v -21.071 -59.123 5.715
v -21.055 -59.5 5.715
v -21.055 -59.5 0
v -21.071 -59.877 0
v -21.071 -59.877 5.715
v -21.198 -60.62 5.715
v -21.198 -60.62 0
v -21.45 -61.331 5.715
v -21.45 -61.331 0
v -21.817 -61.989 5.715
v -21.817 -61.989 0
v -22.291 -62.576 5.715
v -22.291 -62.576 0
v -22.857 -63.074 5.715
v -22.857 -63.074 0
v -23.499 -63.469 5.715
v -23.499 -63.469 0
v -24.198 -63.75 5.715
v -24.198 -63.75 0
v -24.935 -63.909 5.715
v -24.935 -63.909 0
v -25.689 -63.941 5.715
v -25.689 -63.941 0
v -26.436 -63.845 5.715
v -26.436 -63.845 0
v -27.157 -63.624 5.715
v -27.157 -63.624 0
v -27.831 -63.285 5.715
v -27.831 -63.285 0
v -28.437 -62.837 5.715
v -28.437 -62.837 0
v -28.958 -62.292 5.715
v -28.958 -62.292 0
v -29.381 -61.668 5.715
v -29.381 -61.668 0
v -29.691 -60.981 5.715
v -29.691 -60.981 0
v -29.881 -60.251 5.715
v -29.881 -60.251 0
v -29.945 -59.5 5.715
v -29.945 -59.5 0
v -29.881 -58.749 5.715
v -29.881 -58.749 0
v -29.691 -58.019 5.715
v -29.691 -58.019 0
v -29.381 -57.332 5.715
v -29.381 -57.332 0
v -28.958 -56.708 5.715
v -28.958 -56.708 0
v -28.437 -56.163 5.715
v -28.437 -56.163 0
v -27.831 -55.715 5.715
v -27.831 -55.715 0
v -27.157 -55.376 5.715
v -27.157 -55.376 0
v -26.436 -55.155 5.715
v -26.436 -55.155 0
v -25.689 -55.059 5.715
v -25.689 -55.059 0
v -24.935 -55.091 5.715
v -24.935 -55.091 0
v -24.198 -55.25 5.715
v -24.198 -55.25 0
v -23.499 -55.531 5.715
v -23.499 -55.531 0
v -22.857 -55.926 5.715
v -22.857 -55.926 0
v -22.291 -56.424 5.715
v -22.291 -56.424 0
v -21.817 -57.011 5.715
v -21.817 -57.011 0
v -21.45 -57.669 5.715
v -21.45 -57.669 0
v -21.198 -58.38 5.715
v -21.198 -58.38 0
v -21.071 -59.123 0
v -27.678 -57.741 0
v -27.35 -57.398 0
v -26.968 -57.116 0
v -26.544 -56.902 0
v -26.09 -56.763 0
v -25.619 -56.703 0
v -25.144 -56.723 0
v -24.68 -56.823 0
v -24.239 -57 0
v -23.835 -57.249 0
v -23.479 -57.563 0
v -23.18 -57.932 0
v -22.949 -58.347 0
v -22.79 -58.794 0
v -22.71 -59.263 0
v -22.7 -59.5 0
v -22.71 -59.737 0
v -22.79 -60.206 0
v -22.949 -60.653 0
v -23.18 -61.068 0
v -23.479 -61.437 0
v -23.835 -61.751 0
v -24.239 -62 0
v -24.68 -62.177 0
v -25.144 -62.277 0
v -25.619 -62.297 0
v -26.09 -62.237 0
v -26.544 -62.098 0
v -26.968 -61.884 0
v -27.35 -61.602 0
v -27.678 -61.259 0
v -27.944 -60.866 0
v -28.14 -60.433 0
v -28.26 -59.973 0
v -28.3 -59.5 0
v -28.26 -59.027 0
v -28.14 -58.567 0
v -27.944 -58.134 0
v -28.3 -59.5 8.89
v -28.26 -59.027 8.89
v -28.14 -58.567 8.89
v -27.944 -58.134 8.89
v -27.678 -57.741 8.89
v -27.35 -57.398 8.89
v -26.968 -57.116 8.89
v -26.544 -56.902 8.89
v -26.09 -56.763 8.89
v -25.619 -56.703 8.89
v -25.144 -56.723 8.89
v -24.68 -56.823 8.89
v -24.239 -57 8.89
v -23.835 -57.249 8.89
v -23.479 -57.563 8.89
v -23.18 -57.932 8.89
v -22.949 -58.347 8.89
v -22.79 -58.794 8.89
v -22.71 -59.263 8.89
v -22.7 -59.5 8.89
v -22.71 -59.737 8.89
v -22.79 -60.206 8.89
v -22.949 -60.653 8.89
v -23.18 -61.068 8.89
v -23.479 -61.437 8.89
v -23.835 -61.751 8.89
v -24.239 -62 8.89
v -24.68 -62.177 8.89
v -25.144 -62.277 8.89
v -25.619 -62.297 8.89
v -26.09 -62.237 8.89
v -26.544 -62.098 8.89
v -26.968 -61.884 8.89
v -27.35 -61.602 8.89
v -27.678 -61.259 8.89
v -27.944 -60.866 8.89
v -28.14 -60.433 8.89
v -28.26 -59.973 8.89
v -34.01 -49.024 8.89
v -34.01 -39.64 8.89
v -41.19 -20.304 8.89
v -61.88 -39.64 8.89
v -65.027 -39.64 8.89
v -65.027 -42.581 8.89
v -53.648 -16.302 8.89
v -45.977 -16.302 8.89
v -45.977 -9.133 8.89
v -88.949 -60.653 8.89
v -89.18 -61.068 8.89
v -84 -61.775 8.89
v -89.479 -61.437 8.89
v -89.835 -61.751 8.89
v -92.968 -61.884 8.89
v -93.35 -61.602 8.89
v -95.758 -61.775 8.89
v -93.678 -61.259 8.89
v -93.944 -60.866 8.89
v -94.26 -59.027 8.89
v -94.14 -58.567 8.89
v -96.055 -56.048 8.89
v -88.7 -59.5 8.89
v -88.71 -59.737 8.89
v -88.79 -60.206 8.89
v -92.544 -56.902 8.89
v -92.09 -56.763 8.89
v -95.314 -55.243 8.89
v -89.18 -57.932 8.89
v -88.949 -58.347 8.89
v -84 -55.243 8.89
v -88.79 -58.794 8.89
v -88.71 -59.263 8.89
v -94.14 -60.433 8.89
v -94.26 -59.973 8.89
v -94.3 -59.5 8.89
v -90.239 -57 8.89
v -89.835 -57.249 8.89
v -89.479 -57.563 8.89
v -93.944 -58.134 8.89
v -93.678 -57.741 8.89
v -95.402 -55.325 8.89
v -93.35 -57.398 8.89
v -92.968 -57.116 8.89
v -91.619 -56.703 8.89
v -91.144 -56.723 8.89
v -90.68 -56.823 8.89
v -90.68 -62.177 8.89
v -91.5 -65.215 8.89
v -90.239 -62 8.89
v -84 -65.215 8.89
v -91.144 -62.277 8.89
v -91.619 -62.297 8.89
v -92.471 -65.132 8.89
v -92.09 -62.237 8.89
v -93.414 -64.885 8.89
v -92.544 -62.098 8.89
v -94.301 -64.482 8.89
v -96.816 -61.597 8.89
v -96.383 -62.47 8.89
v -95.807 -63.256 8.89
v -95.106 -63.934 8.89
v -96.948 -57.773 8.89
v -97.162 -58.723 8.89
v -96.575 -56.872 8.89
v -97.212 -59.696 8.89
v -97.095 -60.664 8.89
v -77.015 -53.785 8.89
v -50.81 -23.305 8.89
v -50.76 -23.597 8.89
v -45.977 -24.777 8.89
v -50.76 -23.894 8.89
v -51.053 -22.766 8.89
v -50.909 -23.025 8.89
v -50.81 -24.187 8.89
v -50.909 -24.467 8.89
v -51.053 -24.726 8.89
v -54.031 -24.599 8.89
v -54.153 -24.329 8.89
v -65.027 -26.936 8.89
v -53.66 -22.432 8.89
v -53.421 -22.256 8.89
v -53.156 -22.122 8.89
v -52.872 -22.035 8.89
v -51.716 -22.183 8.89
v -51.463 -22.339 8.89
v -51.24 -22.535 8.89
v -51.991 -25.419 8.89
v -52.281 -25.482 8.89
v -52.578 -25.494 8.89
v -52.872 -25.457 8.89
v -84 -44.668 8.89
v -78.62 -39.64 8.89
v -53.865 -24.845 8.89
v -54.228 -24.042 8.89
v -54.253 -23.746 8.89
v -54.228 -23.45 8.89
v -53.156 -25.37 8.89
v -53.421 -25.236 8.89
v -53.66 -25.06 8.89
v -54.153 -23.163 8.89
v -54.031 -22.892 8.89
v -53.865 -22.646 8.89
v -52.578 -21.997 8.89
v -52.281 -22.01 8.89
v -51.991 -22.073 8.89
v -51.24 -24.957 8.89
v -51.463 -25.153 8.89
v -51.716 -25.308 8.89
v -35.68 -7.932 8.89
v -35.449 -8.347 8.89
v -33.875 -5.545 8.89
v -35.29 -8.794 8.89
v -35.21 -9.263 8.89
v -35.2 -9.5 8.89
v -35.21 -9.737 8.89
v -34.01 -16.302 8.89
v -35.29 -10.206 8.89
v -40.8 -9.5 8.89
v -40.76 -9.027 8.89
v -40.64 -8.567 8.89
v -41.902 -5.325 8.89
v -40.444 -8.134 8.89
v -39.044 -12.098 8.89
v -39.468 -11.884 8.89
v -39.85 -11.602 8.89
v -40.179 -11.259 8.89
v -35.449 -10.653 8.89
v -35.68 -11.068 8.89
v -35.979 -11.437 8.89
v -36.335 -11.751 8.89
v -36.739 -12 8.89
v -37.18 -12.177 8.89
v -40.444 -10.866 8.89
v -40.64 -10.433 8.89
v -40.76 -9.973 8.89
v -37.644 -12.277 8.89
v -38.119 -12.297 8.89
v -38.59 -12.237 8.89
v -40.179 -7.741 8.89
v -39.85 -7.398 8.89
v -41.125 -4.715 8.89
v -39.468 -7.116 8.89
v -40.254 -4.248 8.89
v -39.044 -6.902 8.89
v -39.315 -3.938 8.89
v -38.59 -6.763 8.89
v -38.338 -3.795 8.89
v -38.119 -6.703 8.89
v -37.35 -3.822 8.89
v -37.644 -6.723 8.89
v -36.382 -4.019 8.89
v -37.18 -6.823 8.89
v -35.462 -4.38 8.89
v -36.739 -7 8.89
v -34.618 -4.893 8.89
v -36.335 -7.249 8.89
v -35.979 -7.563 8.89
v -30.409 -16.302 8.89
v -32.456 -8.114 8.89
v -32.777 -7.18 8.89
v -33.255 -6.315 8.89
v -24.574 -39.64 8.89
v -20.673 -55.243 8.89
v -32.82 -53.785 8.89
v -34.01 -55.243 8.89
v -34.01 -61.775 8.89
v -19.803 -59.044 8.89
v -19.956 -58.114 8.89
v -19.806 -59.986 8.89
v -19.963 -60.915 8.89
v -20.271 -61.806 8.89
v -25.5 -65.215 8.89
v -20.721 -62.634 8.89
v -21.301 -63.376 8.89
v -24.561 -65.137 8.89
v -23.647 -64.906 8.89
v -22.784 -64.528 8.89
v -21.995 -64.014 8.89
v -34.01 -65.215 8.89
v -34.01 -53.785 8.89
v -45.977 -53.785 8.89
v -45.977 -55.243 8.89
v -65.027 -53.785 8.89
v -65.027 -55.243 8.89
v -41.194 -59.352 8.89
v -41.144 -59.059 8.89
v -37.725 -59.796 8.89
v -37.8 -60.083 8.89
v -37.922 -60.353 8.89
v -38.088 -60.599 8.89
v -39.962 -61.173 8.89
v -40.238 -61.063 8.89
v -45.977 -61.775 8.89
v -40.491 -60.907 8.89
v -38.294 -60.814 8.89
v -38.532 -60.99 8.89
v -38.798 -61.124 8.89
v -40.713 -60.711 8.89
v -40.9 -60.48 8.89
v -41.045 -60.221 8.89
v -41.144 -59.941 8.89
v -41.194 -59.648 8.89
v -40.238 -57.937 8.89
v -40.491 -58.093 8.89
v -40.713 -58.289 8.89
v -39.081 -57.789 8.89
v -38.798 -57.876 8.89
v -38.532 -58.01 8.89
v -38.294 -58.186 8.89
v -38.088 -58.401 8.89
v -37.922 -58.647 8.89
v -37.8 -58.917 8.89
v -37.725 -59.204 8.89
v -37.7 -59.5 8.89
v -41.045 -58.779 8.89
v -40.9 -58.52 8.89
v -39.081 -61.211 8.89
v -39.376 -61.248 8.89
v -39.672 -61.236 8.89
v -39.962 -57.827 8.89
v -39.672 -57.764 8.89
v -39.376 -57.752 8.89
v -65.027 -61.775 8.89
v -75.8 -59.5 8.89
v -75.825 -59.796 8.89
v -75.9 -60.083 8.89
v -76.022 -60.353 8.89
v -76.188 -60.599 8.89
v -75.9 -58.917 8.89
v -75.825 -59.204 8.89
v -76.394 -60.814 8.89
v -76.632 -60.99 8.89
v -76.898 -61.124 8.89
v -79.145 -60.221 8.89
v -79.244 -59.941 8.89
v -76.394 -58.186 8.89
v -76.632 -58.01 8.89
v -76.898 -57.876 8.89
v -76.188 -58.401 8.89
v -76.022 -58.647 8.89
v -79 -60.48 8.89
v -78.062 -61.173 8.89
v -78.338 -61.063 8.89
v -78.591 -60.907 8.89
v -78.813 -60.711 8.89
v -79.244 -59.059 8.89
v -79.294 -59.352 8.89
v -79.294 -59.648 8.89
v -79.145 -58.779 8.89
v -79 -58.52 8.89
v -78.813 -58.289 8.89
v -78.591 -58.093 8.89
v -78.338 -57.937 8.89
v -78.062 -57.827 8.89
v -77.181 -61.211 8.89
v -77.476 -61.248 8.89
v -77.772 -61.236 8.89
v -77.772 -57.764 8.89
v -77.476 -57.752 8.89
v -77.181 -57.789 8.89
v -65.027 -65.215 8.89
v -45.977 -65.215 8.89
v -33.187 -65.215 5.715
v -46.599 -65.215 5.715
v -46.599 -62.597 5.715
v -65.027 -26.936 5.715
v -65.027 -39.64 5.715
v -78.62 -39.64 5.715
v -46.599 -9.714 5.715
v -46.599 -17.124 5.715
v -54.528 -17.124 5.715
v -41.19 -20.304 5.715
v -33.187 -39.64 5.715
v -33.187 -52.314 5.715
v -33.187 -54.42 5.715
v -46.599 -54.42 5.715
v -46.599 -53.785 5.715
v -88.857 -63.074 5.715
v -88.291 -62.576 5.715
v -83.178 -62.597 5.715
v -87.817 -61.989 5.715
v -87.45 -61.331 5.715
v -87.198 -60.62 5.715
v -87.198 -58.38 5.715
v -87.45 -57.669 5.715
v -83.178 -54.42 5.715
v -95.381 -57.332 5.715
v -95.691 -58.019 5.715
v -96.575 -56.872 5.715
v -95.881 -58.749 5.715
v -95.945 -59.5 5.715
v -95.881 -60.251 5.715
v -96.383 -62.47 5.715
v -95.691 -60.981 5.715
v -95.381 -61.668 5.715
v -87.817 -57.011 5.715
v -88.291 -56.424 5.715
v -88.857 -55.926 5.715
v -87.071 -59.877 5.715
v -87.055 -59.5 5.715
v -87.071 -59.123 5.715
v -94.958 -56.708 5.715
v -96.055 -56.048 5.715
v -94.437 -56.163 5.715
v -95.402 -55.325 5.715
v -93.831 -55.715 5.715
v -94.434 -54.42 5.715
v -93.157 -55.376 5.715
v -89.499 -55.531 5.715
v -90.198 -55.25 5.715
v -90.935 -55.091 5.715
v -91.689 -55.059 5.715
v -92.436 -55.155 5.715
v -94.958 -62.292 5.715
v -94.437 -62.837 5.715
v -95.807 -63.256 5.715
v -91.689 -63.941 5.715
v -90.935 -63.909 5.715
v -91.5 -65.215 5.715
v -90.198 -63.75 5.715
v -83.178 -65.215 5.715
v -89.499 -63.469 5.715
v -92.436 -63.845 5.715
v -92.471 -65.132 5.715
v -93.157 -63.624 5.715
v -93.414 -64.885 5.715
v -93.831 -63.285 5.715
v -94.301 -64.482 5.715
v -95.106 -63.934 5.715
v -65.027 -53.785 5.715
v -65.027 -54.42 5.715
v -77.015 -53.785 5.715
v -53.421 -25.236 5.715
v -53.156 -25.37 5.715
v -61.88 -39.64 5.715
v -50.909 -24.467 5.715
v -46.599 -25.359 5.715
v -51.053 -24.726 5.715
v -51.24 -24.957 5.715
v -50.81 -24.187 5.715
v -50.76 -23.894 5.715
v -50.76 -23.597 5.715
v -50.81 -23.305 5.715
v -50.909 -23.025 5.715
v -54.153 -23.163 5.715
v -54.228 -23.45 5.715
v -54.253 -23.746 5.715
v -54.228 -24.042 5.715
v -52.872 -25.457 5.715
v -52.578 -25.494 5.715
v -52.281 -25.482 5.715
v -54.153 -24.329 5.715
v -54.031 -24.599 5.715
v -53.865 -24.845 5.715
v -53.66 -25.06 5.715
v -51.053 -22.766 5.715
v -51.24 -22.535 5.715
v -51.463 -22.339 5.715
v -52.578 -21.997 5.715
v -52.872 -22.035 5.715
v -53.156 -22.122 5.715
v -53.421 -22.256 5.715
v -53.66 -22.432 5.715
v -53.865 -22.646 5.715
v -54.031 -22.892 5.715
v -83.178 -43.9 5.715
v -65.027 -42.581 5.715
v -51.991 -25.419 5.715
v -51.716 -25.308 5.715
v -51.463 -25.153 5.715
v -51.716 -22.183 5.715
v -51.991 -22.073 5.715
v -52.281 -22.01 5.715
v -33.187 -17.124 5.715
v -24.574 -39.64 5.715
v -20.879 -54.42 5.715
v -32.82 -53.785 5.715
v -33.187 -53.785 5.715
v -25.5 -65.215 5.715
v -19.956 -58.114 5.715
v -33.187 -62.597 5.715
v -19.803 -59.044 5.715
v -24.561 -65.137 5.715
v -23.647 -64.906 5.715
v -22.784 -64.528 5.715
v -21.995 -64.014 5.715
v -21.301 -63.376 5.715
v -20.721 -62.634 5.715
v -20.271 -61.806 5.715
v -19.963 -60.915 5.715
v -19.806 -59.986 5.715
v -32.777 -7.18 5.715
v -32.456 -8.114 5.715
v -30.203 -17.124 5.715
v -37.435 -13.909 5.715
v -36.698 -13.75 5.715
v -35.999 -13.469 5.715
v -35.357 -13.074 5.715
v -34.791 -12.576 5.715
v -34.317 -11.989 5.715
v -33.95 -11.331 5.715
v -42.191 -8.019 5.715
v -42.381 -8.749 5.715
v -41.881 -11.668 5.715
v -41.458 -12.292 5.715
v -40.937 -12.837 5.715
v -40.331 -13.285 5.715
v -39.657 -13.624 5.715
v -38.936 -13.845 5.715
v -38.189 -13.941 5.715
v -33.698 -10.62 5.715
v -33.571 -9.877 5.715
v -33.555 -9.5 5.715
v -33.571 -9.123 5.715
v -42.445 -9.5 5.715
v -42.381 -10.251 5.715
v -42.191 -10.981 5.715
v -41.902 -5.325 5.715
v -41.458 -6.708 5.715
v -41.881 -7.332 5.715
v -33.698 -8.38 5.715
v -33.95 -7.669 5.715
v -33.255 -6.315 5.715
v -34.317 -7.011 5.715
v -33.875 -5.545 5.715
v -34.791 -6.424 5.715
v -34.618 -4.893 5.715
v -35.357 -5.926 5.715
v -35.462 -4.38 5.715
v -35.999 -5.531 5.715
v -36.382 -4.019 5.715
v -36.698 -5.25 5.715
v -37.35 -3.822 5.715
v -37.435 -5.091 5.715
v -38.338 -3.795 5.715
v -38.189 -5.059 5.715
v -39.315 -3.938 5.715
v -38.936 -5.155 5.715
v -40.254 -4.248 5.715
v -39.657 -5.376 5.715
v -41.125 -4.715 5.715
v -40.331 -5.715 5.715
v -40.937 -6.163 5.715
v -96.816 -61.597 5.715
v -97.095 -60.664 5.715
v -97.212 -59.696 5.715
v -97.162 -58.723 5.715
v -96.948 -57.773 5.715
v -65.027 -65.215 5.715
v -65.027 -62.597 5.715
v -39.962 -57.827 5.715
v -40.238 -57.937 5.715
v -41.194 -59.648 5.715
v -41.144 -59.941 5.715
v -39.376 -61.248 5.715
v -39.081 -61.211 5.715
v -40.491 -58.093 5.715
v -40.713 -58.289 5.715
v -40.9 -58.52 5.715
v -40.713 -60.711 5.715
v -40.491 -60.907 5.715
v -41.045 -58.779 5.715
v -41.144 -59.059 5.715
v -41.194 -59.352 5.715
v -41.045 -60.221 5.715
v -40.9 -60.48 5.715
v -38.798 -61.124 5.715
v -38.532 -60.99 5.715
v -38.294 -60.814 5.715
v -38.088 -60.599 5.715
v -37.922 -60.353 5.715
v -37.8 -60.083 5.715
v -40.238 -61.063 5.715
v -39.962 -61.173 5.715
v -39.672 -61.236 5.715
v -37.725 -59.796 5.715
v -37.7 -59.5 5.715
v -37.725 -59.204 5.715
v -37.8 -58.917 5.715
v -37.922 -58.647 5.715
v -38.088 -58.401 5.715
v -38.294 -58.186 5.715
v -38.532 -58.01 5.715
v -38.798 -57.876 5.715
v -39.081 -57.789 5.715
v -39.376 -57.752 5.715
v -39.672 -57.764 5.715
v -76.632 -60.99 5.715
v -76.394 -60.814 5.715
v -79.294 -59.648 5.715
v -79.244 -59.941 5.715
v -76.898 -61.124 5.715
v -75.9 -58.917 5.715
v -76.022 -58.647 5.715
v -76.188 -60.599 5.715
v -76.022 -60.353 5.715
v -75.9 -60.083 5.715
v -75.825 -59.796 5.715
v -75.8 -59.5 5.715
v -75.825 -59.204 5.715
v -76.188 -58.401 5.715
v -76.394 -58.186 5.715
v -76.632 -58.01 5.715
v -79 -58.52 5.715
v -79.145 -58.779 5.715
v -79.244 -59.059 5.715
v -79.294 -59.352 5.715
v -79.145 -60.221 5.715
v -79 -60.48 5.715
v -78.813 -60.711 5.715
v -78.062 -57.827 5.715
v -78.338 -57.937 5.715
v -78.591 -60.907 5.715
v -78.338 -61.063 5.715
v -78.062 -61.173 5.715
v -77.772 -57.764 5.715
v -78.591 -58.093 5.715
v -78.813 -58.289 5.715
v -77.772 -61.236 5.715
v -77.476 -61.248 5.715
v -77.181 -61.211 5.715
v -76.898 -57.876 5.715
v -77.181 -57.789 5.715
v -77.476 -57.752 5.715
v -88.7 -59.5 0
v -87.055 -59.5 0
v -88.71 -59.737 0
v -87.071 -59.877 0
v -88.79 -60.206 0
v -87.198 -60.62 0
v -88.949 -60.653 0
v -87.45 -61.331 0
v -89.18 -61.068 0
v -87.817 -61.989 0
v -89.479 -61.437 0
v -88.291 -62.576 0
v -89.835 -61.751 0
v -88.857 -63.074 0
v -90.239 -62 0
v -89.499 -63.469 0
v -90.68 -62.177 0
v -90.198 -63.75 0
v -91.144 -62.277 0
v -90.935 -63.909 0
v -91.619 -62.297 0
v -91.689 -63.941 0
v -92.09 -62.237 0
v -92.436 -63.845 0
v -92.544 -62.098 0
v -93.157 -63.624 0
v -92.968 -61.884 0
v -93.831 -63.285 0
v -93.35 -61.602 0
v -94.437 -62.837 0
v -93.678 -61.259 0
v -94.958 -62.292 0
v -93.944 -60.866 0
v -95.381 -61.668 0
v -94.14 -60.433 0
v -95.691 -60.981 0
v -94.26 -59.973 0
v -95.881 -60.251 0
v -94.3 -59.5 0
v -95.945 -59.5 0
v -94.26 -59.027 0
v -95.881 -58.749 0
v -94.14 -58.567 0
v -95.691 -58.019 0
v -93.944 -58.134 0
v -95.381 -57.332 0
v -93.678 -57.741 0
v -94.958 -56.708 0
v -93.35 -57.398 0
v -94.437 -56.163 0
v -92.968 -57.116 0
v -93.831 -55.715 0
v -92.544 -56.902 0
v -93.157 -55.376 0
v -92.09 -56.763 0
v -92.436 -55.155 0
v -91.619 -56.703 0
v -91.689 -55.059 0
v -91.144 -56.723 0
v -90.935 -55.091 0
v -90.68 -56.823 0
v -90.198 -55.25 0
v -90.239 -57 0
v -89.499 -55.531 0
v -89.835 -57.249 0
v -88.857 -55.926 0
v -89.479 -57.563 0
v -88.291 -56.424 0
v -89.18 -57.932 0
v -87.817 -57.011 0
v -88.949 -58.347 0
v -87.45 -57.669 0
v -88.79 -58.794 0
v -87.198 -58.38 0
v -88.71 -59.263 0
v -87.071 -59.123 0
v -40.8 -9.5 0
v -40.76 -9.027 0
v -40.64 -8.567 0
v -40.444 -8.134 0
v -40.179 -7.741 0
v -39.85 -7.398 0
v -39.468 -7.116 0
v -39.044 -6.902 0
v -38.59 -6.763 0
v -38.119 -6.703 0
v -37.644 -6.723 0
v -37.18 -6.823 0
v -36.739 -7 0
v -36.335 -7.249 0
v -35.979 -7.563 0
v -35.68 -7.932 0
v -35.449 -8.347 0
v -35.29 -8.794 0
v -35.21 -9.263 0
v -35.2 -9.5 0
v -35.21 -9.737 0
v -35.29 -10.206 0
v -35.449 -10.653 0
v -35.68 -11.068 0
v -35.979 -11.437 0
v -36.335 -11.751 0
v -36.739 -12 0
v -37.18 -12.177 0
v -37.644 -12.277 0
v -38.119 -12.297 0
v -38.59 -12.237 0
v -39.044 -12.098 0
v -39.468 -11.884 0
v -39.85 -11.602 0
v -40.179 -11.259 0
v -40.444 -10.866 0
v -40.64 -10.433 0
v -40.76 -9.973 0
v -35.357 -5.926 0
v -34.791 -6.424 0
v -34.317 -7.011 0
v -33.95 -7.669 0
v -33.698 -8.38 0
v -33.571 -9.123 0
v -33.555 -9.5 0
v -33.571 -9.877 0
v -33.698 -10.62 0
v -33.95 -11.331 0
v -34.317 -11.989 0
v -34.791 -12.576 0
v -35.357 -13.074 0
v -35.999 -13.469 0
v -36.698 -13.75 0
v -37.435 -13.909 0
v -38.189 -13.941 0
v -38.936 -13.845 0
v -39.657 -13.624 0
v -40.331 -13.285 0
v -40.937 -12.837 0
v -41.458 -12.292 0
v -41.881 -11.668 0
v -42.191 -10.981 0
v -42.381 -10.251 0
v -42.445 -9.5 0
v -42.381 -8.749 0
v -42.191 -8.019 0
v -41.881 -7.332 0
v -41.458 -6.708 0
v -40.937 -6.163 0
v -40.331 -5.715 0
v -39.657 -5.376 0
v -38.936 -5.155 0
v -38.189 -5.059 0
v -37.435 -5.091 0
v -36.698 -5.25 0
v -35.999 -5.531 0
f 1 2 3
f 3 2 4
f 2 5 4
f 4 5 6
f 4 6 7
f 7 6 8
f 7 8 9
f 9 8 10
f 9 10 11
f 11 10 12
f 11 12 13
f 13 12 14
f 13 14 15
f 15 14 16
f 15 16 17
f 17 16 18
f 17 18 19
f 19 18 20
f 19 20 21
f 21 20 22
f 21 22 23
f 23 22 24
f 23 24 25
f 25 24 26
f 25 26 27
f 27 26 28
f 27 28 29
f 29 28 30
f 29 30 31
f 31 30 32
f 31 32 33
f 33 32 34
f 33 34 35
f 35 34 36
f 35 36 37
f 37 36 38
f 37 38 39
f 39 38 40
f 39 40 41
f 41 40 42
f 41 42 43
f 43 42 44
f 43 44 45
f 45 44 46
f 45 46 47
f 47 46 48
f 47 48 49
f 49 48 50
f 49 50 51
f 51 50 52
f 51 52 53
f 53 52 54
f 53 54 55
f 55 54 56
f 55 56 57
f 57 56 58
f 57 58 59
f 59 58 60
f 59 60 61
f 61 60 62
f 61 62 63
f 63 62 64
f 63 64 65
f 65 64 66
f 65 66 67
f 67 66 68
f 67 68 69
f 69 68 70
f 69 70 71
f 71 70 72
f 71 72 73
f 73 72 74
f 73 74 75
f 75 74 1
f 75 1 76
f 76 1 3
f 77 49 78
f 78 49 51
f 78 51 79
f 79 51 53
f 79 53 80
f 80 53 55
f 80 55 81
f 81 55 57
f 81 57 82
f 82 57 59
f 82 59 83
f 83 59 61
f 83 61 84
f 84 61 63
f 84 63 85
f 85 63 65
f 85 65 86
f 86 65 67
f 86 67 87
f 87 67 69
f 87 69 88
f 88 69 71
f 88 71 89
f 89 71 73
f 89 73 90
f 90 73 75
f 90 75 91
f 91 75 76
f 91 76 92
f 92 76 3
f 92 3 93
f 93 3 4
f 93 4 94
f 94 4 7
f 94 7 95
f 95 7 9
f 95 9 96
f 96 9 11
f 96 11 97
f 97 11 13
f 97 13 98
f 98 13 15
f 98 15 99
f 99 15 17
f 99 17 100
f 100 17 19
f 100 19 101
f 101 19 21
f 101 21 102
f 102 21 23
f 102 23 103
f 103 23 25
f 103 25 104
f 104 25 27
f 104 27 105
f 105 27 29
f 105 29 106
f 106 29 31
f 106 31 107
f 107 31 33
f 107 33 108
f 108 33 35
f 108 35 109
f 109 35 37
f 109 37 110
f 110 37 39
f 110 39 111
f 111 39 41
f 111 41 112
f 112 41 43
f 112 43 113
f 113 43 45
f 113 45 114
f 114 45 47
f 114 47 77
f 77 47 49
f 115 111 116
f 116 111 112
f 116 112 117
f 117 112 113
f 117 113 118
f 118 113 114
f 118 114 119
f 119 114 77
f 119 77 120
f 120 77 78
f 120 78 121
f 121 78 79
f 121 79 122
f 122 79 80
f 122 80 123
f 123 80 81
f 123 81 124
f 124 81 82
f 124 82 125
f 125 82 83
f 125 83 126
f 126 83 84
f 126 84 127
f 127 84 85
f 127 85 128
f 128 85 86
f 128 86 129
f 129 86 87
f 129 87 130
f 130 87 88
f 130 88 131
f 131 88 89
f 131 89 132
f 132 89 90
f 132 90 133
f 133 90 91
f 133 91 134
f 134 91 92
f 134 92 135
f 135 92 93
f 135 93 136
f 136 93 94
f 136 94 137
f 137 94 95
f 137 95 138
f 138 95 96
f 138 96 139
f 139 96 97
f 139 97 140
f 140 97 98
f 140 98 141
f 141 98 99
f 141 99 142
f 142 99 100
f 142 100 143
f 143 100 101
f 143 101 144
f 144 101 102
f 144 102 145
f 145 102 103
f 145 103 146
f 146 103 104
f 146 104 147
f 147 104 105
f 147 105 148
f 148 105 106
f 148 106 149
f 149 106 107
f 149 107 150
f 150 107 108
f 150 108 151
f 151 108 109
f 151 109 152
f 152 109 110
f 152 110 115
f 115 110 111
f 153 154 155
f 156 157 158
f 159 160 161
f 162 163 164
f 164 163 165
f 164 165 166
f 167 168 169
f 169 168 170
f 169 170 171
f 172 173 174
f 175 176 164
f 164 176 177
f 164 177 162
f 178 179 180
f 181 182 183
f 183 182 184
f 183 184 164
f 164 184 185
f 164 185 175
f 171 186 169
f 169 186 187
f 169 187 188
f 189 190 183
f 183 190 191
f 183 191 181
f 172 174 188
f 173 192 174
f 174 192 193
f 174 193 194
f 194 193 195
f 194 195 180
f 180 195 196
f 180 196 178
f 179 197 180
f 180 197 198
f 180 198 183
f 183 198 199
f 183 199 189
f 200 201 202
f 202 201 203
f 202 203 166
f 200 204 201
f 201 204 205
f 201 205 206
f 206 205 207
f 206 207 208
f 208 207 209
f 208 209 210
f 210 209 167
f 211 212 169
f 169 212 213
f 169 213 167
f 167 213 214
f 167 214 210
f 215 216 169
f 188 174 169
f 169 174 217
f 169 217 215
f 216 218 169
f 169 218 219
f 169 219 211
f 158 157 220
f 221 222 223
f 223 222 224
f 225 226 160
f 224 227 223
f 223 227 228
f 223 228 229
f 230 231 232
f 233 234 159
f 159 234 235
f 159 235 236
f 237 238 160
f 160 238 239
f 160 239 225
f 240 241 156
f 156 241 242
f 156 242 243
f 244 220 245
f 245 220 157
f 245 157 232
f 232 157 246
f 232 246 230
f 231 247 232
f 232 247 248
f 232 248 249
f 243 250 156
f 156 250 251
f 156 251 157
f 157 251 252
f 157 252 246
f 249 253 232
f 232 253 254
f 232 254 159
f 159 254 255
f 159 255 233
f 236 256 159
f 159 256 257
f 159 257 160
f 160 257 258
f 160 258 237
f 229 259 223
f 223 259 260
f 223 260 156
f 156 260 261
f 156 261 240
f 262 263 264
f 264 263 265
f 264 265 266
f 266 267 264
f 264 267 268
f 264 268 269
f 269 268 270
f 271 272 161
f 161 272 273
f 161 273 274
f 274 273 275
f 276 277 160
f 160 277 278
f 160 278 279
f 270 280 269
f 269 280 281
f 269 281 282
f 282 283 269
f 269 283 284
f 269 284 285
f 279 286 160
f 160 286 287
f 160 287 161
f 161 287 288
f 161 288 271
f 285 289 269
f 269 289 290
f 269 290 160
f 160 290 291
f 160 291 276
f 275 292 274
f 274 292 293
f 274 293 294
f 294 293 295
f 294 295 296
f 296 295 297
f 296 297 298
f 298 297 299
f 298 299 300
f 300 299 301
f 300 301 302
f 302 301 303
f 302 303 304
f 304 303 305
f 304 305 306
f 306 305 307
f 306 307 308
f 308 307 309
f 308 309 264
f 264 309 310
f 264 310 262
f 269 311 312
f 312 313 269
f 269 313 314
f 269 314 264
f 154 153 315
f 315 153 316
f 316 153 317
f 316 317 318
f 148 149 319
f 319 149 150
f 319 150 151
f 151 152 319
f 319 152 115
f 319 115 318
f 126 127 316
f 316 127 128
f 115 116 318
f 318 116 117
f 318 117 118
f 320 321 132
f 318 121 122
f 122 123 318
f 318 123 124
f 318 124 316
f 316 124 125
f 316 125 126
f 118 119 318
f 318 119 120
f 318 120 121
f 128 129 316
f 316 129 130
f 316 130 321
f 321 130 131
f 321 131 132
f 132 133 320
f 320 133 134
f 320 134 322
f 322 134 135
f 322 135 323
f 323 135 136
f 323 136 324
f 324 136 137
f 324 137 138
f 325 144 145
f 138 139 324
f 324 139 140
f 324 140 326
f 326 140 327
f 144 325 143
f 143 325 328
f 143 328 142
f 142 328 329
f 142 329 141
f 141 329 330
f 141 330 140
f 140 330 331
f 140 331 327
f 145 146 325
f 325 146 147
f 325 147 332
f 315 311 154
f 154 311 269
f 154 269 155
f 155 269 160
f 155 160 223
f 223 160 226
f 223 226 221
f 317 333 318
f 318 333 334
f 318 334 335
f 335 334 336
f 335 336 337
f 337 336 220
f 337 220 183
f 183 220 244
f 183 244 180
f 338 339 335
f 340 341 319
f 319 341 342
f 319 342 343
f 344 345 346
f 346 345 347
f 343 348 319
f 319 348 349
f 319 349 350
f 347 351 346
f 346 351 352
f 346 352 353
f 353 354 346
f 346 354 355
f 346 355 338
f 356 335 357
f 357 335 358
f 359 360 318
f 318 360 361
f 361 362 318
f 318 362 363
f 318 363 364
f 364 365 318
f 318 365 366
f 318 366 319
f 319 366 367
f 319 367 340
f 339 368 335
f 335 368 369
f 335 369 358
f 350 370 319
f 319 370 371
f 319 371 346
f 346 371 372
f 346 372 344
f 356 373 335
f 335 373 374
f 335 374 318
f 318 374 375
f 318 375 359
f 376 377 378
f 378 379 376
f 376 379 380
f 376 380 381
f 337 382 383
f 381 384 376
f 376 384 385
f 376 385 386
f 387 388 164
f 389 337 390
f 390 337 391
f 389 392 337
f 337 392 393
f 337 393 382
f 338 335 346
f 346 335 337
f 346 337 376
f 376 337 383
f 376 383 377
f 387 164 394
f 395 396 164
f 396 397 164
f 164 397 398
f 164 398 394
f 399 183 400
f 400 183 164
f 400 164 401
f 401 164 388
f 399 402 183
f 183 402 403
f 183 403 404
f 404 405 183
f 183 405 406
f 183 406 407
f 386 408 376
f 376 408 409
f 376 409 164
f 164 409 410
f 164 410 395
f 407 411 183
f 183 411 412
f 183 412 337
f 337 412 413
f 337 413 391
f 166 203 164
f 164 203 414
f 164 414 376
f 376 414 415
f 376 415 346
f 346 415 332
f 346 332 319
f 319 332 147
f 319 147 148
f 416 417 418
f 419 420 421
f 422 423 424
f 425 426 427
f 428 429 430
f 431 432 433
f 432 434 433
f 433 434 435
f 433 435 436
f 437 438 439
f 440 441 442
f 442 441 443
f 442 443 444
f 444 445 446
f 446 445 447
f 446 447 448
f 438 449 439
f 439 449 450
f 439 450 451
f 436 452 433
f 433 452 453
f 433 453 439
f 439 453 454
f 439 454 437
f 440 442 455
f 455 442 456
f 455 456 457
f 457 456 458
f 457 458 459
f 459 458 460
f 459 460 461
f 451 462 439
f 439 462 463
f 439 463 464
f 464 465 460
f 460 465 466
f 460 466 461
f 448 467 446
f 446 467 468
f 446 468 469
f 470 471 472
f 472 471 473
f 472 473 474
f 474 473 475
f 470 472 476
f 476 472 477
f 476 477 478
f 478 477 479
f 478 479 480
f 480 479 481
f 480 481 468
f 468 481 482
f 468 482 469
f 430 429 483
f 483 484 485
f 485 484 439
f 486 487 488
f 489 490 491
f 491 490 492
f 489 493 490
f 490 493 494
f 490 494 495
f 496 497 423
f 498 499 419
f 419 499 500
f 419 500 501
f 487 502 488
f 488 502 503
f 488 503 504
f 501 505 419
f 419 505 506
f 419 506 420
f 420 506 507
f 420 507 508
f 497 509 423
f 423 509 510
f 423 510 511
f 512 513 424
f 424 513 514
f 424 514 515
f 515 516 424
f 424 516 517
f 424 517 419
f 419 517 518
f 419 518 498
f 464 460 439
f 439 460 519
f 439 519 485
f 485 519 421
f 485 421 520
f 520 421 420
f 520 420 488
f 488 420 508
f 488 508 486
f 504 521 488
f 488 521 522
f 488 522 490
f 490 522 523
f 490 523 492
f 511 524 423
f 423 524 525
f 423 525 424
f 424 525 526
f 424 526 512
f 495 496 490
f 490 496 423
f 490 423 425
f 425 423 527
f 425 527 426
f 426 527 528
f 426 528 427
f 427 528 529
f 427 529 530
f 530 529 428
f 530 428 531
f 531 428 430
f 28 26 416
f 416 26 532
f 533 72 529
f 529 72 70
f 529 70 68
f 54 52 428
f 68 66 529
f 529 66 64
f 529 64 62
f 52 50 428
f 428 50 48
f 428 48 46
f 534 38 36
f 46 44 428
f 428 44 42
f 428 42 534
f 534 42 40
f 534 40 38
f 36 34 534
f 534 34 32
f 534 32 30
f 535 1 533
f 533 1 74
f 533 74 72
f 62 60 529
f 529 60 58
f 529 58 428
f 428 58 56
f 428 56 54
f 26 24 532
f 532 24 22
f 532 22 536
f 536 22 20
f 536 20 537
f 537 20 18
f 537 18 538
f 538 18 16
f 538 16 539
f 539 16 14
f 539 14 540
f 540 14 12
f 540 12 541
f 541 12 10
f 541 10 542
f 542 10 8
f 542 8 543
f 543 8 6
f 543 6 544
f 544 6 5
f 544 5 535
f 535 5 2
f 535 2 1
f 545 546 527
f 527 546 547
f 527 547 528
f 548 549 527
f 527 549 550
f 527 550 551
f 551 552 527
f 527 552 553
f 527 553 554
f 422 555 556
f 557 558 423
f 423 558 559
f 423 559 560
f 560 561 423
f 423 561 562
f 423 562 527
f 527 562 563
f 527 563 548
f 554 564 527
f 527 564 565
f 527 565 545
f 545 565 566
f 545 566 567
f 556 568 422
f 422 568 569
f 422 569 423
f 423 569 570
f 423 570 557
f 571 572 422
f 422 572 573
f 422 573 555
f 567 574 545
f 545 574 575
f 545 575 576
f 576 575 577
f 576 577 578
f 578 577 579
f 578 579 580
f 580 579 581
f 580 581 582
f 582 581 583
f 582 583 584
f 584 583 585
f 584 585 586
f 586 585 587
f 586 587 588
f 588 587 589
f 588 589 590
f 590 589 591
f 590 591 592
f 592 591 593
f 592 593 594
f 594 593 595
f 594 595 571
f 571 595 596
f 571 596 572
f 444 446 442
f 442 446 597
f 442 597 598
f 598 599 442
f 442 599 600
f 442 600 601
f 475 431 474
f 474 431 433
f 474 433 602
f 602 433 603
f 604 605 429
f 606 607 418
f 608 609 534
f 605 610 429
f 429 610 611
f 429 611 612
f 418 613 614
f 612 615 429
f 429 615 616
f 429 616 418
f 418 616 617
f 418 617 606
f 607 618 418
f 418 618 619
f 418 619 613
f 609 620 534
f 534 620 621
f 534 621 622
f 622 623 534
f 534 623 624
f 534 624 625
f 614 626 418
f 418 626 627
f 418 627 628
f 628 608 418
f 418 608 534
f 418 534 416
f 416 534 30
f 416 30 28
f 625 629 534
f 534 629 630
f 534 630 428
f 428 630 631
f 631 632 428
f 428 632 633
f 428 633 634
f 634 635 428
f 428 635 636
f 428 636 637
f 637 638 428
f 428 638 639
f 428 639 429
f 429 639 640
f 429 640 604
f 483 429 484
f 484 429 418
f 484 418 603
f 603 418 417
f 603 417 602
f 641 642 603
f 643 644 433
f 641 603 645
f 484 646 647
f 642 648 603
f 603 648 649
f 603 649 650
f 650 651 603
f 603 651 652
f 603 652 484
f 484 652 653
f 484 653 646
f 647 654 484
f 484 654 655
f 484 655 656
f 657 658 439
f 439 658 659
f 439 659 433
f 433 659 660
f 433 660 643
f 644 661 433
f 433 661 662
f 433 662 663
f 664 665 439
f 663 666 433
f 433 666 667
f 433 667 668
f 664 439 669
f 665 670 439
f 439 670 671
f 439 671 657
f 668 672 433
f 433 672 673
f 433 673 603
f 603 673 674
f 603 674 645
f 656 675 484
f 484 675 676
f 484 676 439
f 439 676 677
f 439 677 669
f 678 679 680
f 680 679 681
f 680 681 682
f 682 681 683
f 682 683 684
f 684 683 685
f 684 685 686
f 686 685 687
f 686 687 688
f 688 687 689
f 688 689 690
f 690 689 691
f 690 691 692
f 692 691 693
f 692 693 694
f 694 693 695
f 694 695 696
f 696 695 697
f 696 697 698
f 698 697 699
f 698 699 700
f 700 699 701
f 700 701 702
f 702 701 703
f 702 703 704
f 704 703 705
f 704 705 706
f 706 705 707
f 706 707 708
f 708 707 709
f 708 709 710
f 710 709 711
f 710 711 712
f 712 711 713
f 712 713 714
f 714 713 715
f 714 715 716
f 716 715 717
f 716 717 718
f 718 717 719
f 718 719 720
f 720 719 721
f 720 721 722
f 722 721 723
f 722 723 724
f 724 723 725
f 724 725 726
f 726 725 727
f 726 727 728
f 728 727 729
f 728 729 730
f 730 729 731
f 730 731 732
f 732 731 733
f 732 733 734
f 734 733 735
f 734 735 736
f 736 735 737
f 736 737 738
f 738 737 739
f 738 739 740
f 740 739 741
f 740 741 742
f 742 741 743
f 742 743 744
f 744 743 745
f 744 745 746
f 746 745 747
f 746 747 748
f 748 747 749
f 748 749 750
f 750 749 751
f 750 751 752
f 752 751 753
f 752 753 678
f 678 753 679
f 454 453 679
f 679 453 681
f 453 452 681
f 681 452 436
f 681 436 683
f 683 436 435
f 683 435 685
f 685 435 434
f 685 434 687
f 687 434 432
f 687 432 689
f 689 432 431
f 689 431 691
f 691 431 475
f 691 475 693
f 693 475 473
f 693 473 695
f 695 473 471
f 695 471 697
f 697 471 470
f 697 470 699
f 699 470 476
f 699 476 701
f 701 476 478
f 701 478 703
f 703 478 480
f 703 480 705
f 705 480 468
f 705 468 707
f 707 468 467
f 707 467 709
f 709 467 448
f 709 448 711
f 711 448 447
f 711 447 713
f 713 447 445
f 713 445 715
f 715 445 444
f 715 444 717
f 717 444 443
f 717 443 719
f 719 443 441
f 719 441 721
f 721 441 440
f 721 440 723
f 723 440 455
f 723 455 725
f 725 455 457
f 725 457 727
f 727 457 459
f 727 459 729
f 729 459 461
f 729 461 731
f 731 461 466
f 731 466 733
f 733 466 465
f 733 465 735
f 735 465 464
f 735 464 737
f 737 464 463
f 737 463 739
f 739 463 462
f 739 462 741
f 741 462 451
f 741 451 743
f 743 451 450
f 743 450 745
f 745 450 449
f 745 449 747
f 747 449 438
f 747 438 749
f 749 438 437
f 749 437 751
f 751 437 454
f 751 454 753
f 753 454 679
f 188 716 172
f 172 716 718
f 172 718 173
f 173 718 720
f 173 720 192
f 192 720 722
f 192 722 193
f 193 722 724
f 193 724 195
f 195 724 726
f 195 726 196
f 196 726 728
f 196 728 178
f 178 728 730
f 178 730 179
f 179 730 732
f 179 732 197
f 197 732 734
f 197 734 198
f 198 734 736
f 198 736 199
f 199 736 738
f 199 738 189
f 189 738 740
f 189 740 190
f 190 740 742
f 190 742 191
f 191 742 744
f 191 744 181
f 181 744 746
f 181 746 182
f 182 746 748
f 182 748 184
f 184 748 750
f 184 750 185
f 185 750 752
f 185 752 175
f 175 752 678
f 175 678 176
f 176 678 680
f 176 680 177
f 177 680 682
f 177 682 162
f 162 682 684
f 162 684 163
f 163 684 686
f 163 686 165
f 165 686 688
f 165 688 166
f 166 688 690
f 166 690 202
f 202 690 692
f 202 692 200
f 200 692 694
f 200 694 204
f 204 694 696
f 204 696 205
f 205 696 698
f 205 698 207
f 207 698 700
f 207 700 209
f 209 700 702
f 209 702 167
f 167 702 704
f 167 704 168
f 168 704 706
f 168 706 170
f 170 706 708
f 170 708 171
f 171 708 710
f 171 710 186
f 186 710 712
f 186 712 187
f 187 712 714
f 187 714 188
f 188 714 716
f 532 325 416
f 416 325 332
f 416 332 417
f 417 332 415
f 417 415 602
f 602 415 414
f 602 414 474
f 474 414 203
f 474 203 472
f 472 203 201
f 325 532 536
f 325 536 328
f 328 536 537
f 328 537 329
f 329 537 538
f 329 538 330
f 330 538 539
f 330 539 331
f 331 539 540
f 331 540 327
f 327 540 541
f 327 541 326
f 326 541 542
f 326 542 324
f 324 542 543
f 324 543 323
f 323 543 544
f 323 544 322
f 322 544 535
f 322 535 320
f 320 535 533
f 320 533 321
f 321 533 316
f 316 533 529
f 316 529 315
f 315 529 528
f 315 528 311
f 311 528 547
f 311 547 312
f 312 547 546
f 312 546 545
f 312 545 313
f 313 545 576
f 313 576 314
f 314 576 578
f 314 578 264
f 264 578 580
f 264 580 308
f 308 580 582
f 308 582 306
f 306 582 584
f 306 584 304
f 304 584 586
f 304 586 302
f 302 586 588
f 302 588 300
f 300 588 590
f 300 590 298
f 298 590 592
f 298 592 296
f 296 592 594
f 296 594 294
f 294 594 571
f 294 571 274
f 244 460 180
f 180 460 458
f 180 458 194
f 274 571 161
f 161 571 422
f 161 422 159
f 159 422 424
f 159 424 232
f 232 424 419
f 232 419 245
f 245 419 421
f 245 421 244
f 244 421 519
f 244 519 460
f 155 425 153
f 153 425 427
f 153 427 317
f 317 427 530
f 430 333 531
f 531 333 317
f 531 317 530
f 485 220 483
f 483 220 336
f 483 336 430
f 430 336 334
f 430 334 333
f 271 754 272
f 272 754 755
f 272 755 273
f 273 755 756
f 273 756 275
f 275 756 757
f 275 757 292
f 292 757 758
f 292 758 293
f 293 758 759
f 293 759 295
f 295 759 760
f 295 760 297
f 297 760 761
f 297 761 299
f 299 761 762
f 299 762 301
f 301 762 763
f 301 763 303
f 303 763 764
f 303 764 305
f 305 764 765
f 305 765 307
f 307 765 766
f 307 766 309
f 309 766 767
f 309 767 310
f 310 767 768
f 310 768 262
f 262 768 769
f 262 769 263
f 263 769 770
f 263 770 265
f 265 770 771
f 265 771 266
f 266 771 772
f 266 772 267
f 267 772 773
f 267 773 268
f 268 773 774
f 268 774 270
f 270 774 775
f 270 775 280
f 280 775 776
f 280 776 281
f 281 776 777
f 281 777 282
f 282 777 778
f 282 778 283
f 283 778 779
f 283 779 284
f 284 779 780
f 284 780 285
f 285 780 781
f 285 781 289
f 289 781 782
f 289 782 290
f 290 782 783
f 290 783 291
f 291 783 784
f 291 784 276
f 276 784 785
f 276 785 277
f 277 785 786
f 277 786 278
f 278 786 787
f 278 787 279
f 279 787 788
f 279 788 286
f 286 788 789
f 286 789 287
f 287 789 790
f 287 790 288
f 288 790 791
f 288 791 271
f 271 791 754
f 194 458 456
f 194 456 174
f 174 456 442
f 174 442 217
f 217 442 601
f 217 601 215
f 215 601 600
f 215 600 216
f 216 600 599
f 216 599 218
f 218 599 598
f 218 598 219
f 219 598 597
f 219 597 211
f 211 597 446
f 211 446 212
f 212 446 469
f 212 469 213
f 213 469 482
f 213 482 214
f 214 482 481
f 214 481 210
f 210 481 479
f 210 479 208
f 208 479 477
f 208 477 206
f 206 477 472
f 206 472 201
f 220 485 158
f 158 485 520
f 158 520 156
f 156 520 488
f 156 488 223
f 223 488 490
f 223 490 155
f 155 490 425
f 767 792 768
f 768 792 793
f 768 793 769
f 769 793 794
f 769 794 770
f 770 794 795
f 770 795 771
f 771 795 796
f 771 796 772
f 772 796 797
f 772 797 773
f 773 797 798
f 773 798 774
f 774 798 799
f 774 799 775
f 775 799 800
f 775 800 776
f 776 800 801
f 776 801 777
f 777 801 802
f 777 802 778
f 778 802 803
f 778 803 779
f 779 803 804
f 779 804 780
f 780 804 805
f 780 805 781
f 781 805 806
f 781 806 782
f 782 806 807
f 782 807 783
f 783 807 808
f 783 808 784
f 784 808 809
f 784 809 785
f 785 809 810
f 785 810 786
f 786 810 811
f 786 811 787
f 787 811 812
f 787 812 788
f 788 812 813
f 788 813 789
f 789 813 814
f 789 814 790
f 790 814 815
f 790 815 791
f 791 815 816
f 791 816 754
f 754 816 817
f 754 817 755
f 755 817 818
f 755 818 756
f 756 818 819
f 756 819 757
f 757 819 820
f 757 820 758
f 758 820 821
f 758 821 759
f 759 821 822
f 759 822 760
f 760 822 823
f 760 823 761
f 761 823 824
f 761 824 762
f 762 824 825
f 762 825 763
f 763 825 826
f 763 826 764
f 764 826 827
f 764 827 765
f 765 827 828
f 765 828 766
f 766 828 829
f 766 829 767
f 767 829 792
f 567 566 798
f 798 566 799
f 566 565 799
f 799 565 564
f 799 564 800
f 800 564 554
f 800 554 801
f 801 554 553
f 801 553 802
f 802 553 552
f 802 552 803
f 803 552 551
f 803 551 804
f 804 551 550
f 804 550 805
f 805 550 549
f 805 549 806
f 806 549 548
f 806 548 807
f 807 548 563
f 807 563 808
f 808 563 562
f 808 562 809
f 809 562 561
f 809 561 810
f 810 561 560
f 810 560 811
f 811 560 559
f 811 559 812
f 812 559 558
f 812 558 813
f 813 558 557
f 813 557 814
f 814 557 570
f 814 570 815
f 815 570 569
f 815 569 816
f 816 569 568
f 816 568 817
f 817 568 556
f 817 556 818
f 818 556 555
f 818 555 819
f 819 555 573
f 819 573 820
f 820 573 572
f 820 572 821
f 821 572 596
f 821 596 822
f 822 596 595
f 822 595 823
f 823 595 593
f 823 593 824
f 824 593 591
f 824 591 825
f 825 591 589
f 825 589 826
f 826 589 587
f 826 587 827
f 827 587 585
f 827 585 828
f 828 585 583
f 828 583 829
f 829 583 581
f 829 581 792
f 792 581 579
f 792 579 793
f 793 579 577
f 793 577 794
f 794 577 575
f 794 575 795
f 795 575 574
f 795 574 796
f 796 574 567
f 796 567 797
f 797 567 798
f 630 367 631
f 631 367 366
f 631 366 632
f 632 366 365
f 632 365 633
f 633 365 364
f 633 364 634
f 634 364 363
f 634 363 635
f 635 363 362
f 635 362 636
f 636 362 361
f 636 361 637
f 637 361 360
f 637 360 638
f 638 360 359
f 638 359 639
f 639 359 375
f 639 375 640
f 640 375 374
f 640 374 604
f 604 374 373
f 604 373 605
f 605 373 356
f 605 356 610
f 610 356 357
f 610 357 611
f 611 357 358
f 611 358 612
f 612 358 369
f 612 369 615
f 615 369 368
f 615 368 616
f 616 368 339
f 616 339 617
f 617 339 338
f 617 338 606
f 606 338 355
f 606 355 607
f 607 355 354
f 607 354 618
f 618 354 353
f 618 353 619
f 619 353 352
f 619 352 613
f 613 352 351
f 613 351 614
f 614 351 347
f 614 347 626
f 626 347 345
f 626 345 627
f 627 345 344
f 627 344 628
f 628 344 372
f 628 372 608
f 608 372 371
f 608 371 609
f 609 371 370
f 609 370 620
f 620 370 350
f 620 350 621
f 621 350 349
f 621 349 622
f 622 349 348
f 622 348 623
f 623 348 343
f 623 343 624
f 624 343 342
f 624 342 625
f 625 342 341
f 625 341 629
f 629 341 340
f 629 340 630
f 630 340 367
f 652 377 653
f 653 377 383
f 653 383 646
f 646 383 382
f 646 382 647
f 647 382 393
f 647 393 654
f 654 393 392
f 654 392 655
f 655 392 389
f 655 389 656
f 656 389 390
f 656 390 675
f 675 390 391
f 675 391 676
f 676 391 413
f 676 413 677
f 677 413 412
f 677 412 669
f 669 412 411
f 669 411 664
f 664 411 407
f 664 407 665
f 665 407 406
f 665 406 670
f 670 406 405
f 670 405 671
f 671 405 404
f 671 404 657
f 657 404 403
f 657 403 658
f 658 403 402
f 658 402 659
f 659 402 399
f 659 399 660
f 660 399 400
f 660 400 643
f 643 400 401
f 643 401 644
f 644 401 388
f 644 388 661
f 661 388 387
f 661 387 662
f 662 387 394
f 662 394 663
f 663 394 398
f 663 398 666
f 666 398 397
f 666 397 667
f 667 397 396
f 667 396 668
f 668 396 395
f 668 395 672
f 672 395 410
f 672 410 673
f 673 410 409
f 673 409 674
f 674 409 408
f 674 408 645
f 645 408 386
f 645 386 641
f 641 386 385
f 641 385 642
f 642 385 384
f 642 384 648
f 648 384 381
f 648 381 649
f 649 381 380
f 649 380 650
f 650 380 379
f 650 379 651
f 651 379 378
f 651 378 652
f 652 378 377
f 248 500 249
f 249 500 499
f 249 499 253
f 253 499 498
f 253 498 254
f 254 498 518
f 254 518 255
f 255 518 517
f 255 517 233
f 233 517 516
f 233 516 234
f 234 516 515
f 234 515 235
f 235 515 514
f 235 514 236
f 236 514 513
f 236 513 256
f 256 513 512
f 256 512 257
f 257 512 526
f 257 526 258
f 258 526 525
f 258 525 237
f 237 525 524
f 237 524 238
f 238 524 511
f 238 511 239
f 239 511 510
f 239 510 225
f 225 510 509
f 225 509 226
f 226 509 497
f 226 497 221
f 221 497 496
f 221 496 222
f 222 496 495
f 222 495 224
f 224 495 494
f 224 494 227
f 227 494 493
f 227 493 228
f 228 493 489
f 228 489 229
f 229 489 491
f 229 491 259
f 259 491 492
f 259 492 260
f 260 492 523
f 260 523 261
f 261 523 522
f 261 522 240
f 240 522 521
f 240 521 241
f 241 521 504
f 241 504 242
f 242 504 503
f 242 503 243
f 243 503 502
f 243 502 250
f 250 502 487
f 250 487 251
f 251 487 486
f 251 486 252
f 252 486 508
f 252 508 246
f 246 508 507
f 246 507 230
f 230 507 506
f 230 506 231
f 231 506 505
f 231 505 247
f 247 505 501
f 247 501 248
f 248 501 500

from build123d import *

# Parameters (mm, degrees)
SKETCH1_R             = 4.445
SKETCH1_R_2           = 2.8
BOSS_EXTRUDE1_DEPTH   = 5.715
BOSS_EXTRUDE1_2_DEPTH = 5.715
BOSS_EXTRUDE1_3_DEPTH = 5.715
SKETCH2_R             = 4.445
SKETCH2_R_2           = 2.8
BOSS_EXTRUDE5_DEPTH   = 3.175
SKETCH2_3_R           = 4.445
SKETCH2_3_R_2         = 2.8
BOSS_EXTRUDE6_DEPTH   = 3.175
CUT_EXTRUDE1_DEPTH    = 5.08
SKETCH4_R             = 1.75
CUT_EXTRUDE2_DEPTH    = 118.202447393


with BuildPart() as part:
    # Sketch1 → Boss-Extrude1 (new body)
    with BuildSketch(Plane.XY):
        with Locations((-91.5, -59.5)):
            Circle(SKETCH1_R)
        with Locations((-91.5, -59.5)):
            Circle(SKETCH1_R_2, mode=Mode.SUBTRACT)
    extrude(amount=BOSS_EXTRUDE1_DEPTH)



with BuildPart() as body_2:
    # Sketch1 → Boss-Extrude1 2 (new body)
    with BuildSketch(Plane.XY):
        with Locations((-25.5, -59.5)):
            Circle(SKETCH1_R)
        with Locations((-25.5, -59.5)):
            Circle(SKETCH1_R_2, mode=Mode.SUBTRACT)
    extrude(amount=BOSS_EXTRUDE1_2_DEPTH)


with BuildPart() as body_3:
    # Sketch1 → Boss-Extrude1 3 (new body)
    with BuildSketch(Plane.XY):
        with Locations((-38, -9.5)):
            Circle(SKETCH1_R)
        with Locations((-38, -9.5)):
            Circle(SKETCH1_R_2, mode=Mode.SUBTRACT)
    extrude(amount=BOSS_EXTRUDE1_3_DEPTH)


with BuildPart() as part_1:
    add(part.part)

    add(body_3.part)  # Boss-Extrude5 merges body 3
    # Sketch2 → Boss-Extrude5 (add)
    with BuildSketch(Plane.XY.offset(5.715)):
        with BuildLine():
            Line((-19.955635612, -58.113908903), (-32.455635612, -8.113908903))
            ThreePointArc((-32.455635612, -8.113908903), (-36.381608185, -4.018938704), (-41.902228623, -5.324615374))
            Line((-41.902228623, -5.324615374), (-95.402228623, -55.324615374))
            ThreePointArc((-95.402228623, -55.324615374), (-96.816180402, -61.597486813), (-91.5, -65.215))
            Line((-91.5, -65.215), (-25.5, -65.215))
            ThreePointArc((-25.5, -65.215), (-20.995405922, -63.017080777), (-19.955635612, -58.113908903))
        make_face()
        with Locations((-25.5, -59.5)):
            Circle(SKETCH2_R, mode=Mode.SUBTRACT)
        Polygon((-77.015059827, -53.785), (-41.189982364, -20.303619193), (-32.819637163, -53.785), align=None, mode=Mode.SUBTRACT)
        with Locations((-91.5, -59.5)):
            Circle(SKETCH2_R_2, mode=Mode.SUBTRACT)
        with Locations(Location((-38, -9.5, 0), (0, 0, 180))):
            Circle(SKETCH2_R_2, mode=Mode.SUBTRACT)
    extrude(amount=BOSS_EXTRUDE5_DEPTH)


    add(body_2.part)  # Boss-Extrude6 merges body 2
    # Sketch2<3> → Boss-Extrude6 (add)
    with BuildSketch(Plane.XY.offset(5.715)):
        with Locations((-25.5, -59.5)):
            Circle(SKETCH2_3_R)
        with Locations((-25.5, -59.5)):
            Circle(SKETCH2_3_R_2, mode=Mode.SUBTRACT)
    extrude(amount=BOSS_EXTRUDE6_DEPTH)

    # Sketch3 → Cut-Extrude1 (cut)
    with BuildSketch(Plane.XY.offset(8.89)):
        with BuildLine():
            ThreePointArc((-75.8, -59.5), (-77.55, -57.75), (-79.3, -59.5))
            Line((-79.3, -59.5), (-75.8, -59.5))
        make_face()
        with BuildLine():
            Line((-75.8, -59.5), (-79.3, -59.5))
            ThreePointArc((-79.3, -59.5), (-77.55, -61.25), (-75.8, -59.5))
        make_face()
        with BuildLine():
            ThreePointArc((-37.7, -59.5), (-39.45, -57.75), (-41.2, -59.5))
            Line((-41.2, -59.5), (-37.7, -59.5))
        make_face()
        with BuildLine():
            Line((-37.7, -59.5), (-41.2, -59.5))
            ThreePointArc((-41.2, -59.5), (-39.45, -61.25), (-37.7, -59.5))
        make_face()
    extrude(amount=-CUT_EXTRUDE1_DEPTH, mode=Mode.SUBTRACT)

    # Sketch4 → Cut-Extrude2 (cut, through all)
    with BuildSketch(Plane(origin=(0, 0, 5.715), x_dir=(-1, 0, 0), z_dir=(0, 0, -1))):
        with Locations((52.503366943, -23.745857138)):
            Circle(SKETCH4_R)
    extrude(amount=-CUT_EXTRUDE2_DEPTH, mode=Mode.SUBTRACT)


solid = part_1.part
